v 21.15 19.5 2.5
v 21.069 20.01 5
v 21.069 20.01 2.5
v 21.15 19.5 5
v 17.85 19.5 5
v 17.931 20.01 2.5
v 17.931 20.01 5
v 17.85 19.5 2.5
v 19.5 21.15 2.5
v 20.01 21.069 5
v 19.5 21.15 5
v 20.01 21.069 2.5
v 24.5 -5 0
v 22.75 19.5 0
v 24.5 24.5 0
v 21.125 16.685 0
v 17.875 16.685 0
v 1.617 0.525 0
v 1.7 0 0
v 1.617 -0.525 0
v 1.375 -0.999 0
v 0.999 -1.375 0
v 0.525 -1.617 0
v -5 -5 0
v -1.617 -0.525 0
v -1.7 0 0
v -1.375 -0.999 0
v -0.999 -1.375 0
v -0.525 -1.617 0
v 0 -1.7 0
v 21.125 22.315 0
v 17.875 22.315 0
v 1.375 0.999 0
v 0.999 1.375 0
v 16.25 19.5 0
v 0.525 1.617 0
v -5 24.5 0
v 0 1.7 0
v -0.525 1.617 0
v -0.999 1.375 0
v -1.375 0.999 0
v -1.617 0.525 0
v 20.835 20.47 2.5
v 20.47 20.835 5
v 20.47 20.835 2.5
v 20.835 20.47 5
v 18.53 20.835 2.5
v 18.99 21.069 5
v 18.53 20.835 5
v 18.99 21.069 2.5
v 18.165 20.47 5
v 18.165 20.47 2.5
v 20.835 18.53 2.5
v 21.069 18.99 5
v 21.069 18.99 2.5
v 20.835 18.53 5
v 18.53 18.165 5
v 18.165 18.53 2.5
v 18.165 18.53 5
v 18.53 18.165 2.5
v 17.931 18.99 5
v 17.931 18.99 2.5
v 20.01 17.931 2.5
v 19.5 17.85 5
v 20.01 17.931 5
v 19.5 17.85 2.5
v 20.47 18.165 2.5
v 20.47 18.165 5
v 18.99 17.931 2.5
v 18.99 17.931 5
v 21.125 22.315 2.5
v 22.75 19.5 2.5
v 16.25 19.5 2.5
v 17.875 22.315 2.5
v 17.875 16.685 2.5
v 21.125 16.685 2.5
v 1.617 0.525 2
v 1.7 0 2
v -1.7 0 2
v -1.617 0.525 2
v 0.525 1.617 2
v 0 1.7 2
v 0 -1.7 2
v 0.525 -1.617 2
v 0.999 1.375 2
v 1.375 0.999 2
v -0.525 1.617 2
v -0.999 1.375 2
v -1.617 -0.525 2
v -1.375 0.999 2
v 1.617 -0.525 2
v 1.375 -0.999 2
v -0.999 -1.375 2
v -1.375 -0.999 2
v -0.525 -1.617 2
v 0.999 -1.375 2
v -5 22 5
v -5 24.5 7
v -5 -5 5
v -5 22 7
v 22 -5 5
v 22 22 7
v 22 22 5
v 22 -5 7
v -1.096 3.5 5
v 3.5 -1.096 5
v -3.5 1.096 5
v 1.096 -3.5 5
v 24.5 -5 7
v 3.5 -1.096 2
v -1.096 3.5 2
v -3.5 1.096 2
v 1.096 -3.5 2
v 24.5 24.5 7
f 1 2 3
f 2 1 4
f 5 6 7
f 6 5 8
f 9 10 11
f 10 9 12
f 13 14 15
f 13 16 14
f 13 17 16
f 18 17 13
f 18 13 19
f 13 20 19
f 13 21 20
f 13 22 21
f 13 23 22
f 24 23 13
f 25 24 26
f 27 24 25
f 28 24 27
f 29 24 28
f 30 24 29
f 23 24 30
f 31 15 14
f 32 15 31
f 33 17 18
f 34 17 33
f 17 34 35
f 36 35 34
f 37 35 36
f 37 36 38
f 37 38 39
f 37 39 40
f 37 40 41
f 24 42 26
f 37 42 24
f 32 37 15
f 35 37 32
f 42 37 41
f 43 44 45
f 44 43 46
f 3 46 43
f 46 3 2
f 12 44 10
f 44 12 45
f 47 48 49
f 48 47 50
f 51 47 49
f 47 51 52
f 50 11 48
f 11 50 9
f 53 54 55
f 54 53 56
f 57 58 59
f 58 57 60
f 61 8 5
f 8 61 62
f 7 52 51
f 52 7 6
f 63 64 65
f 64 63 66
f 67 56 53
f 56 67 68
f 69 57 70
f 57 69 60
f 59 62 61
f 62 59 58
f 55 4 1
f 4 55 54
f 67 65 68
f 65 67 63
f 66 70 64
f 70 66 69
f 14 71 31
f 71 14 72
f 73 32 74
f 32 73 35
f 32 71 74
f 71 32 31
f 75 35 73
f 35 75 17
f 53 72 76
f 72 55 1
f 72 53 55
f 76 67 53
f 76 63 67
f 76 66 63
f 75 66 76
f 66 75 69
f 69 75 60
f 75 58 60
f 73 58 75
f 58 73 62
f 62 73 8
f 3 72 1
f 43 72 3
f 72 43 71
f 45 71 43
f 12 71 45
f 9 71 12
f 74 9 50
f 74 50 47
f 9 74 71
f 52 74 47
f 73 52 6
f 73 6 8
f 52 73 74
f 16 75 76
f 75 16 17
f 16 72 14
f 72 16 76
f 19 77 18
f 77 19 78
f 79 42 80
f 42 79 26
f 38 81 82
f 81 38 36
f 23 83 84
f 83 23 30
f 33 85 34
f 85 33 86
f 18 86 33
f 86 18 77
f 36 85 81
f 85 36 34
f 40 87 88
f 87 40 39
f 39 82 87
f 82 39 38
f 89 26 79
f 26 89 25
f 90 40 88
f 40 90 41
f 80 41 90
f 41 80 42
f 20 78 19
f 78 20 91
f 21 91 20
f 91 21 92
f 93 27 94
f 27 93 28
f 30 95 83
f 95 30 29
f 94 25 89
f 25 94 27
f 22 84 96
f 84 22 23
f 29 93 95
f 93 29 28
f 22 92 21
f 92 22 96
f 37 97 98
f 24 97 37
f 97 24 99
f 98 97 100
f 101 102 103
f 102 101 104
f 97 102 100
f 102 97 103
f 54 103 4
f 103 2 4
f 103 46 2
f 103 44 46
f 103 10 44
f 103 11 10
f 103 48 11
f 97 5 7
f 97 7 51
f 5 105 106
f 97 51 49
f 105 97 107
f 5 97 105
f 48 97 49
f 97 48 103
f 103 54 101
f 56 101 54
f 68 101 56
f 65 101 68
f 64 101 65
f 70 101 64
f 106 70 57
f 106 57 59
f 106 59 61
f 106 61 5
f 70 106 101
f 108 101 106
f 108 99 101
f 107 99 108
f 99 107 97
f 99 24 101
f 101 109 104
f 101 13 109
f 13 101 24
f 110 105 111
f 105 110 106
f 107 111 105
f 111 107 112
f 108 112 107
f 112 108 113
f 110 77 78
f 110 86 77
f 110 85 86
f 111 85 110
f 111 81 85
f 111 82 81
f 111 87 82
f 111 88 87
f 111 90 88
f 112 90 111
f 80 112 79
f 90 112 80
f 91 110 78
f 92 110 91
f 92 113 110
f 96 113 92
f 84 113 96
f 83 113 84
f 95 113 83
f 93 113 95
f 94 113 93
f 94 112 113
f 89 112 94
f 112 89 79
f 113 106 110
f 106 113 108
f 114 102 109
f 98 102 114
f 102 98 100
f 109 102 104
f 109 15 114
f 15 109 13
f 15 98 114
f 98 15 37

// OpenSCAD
CAMA_CALIENTE_DIAM_AGUJ = 3.3;
CAMA_CALIENTE_TUER_ALTO = 2.5;
CAMA_CALIENTE_TUER_DIAM = 6.5;
CAMA_CALIENTE_MARGEN    = 2.5;
CAMA_CALIENTE_ALTO      = 2;
CAMA_CALIENTE_DIST_AGUJ = 209;

BASE_Z_DIST_AGUJ        = 170;
BASE_Z_DIAM_AGUJ        = 3.4 ;
BASE_Z_CAB_TOR_DIAM     = 6.5;
BASE_Z_CAB_TOR_ALTO     = 3;

ADAPTADOR_MARGEN        = 3;
ADAPTADOR_ALTO          = 2+BASE_Z_CAB_TOR_ALTO+CAMA_CALIENTE_ALTO;


$fn = 20;

module adaptador()
{
    difference(){
        union() {
            translate([-CAMA_CALIENTE_MARGEN*2, -CAMA_CALIENTE_MARGEN*2, 0]) cube([
                (CAMA_CALIENTE_DIST_AGUJ/2)-(BASE_Z_DIST_AGUJ/2) + CAMA_CALIENTE_MARGEN *4,
                (CAMA_CALIENTE_DIST_AGUJ/2)-(BASE_Z_DIST_AGUJ/2) + CAMA_CALIENTE_MARGEN *4,
                ADAPTADOR_ALTO
            ]);
        }
        color("red", 0.5) {
            cylinder(h=50, d=BASE_Z_DIAM_AGUJ);
            translate([(CAMA_CALIENTE_DIST_AGUJ/2)-(BASE_Z_DIST_AGUJ/2), (CAMA_CALIENTE_DIST_AGUJ/2)-(BASE_Z_DIST_AGUJ/2)]) {
                cylinder(h=50, d=CAMA_CALIENTE_DIAM_AGUJ);
                cylinder(h=CAMA_CALIENTE_TUER_ALTO, d=CAMA_CALIENTE_TUER_DIAM, $fn=6);
            }
            translate([-CAMA_CALIENTE_MARGEN*2, -CAMA_CALIENTE_MARGEN*2, ADAPTADOR_ALTO-CAMA_CALIENTE_ALTO])
                cube([
                    (CAMA_CALIENTE_DIST_AGUJ/2)-(BASE_Z_DIST_AGUJ/2) + CAMA_CALIENTE_MARGEN *3,
                    (CAMA_CALIENTE_DIST_AGUJ/2)-(BASE_Z_DIST_AGUJ/2) + CAMA_CALIENTE_MARGEN *3,
                    10
                ]);
        color("blue") translate([0,0,ADAPTADOR_ALTO-CAMA_CALIENTE_ALTO-BASE_Z_CAB_TOR_ALTO/2]) rotate([0,0,45])
            cube([BASE_Z_DIAM_AGUJ, BASE_Z_CAB_TOR_DIAM, BASE_Z_CAB_TOR_ALTO], center=true);
        }
    }
}

adaptador();
